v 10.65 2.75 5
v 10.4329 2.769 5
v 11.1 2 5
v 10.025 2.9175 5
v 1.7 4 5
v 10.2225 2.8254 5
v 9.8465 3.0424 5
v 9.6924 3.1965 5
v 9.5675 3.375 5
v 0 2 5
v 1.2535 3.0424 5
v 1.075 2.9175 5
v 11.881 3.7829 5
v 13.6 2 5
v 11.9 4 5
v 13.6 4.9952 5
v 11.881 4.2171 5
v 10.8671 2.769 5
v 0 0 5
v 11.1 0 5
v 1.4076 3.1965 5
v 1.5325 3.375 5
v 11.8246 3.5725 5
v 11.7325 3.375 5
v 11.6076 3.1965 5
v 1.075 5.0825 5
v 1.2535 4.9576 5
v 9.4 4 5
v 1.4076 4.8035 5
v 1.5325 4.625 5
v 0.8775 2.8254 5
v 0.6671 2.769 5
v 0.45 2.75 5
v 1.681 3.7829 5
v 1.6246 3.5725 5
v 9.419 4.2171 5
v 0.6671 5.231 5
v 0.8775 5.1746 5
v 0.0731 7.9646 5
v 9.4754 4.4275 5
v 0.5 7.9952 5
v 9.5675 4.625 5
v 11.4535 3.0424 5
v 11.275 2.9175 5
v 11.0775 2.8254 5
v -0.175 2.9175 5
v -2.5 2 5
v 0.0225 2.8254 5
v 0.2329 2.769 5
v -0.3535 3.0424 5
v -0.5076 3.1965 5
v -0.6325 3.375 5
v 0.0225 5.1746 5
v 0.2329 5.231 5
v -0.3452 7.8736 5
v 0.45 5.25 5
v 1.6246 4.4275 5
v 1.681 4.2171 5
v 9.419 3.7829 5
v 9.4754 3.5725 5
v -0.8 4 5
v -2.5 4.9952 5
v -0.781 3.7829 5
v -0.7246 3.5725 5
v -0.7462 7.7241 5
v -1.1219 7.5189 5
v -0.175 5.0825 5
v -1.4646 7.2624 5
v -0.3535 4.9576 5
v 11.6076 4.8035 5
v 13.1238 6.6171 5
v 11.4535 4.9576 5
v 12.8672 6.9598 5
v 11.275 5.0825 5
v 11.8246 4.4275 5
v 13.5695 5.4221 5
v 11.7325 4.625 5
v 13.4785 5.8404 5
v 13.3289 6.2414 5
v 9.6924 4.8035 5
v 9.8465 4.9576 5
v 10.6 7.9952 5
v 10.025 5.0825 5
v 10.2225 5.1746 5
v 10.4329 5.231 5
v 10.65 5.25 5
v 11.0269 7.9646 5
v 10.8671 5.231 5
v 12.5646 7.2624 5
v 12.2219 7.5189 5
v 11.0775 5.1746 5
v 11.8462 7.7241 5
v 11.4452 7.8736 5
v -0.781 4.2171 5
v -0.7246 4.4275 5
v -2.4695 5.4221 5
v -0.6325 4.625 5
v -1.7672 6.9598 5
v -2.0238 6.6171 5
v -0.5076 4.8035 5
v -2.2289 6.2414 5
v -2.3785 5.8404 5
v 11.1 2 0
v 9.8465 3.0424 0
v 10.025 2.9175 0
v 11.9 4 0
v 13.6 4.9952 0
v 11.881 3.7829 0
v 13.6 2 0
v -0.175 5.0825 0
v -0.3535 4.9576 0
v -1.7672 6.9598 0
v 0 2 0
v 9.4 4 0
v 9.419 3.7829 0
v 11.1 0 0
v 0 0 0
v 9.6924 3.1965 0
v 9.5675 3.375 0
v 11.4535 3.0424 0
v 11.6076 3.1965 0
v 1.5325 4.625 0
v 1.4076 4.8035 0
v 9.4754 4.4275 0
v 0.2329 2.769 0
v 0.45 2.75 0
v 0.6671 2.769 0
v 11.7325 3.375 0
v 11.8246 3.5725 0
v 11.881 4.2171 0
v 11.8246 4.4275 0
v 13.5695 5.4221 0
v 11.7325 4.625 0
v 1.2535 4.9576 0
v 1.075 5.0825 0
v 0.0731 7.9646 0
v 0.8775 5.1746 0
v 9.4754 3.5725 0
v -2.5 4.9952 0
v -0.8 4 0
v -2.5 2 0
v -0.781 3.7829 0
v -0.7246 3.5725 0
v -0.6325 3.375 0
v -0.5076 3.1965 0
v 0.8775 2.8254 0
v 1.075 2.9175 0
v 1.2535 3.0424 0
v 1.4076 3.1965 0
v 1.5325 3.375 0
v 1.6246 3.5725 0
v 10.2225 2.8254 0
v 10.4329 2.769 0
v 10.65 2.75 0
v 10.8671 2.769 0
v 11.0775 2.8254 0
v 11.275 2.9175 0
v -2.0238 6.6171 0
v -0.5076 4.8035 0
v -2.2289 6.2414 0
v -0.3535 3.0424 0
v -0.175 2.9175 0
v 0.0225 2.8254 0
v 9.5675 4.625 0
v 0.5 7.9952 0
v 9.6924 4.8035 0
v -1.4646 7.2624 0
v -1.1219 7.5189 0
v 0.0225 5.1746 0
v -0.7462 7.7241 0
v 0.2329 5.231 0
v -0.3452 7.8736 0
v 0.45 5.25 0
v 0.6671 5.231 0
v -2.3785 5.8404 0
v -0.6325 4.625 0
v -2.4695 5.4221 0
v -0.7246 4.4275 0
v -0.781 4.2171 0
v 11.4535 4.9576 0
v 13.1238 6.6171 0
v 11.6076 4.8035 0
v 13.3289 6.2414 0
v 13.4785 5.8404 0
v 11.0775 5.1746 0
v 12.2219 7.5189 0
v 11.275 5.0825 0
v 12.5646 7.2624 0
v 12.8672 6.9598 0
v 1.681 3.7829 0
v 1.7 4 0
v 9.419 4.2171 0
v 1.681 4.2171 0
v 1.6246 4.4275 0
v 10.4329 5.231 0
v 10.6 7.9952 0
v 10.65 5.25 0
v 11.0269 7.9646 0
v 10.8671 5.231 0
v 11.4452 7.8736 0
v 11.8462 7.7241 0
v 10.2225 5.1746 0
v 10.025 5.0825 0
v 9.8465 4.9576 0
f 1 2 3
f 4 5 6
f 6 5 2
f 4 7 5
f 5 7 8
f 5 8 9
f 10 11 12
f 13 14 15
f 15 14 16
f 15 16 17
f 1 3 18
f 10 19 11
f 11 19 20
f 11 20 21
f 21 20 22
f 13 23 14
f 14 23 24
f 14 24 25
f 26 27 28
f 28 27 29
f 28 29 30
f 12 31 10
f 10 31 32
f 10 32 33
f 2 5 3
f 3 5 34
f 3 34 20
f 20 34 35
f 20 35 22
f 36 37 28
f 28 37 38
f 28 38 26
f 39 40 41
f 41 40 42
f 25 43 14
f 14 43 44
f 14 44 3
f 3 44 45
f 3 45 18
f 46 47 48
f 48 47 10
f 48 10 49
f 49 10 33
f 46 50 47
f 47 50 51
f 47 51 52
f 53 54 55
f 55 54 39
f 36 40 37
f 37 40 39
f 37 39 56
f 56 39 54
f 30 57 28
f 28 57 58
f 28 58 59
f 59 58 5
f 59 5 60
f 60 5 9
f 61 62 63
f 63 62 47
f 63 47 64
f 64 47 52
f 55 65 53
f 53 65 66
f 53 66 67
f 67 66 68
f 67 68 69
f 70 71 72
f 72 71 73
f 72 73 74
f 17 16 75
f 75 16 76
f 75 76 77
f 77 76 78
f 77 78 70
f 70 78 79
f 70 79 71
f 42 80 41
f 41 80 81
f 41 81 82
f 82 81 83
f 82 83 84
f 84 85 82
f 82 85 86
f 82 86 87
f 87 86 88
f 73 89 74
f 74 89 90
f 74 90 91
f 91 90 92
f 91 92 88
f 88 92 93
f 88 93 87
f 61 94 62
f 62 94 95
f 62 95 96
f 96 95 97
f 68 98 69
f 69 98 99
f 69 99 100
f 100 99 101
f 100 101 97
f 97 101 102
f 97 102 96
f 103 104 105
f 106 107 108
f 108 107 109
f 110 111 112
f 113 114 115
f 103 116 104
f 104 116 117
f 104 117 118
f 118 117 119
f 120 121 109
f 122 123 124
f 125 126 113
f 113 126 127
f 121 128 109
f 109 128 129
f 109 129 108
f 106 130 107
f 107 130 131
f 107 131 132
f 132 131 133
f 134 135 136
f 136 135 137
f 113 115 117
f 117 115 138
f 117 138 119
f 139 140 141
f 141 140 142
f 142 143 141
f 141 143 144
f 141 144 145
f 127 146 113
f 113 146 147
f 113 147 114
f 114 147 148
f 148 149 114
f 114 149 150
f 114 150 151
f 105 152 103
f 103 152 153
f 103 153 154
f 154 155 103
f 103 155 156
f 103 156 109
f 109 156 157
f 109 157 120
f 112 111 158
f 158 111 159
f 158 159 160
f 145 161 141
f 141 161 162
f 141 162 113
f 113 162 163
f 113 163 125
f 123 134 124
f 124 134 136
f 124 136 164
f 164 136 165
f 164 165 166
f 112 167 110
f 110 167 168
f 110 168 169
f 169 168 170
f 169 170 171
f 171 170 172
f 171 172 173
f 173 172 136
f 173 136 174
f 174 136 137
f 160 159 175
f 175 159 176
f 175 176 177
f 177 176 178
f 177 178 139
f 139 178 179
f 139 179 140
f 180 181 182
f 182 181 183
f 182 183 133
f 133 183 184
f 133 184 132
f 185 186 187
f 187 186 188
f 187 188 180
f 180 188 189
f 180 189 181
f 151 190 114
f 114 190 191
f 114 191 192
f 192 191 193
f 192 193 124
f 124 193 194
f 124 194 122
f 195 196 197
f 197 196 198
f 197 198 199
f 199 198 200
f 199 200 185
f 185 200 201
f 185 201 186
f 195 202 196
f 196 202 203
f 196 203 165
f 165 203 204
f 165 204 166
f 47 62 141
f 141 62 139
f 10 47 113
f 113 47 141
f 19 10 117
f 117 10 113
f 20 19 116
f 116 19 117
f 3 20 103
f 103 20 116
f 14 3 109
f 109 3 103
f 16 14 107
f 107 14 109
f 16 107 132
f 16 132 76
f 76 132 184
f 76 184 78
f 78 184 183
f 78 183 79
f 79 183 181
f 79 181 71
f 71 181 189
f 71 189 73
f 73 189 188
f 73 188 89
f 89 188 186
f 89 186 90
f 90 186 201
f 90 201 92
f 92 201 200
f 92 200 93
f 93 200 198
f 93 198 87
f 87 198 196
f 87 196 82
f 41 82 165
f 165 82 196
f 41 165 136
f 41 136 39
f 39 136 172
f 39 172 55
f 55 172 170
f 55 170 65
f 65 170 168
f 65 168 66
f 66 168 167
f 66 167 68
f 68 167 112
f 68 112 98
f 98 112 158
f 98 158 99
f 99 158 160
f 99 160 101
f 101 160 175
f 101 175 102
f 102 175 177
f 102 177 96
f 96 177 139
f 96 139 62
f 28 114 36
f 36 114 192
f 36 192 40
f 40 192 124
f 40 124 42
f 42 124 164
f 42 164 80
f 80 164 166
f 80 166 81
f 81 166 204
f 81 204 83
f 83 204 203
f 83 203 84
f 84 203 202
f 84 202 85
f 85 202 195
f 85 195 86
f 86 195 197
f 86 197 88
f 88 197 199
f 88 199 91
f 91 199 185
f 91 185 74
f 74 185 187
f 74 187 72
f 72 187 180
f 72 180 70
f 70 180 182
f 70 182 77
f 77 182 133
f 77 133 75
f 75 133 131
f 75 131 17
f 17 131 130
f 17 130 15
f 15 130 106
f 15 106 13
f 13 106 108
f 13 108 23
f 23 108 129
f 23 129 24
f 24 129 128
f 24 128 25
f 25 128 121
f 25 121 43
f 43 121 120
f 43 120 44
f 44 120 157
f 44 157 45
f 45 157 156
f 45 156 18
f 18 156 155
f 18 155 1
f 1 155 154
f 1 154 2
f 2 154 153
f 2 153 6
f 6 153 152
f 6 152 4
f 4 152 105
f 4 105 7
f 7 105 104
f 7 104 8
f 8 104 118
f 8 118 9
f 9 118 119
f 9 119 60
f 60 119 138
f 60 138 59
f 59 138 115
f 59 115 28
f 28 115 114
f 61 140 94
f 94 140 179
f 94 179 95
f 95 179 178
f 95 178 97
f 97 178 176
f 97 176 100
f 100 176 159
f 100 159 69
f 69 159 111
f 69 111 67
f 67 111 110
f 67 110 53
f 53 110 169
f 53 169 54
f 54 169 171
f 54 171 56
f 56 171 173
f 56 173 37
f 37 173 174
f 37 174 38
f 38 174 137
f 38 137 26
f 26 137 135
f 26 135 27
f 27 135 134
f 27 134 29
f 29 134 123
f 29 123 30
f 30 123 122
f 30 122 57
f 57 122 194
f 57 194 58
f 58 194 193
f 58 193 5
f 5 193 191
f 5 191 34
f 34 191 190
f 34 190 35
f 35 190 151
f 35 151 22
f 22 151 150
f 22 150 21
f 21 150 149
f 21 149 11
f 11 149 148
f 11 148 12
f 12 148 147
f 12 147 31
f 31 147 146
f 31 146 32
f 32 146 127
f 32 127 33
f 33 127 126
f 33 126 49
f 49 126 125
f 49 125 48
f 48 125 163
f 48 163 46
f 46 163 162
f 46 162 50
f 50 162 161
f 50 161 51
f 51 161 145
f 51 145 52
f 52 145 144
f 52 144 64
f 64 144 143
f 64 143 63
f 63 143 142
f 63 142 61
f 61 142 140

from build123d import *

# Parameters (mm, degrees)
MODEL_R             = 1.25
BOSS_EXTRUDE1_DEPTH = 5


with BuildPart() as part:
    # Model → Boss-Extrude1 (new body)
    with BuildSketch(Plane.XY):
        with BuildLine():
            Line((0, 2), (-2.5, 2))
            Line((-2.5, 2), (-2.5, 4.995169548))
            ThreePointArc((-2.5, 4.995169548), (-1.621320344, 7.116489891), (0.5, 7.995169548))
            Line((0.5, 7.995169548), (10.6, 7.995169548))
            ThreePointArc((10.6, 7.995169548), (12.721320344, 7.116489891), (13.6, 4.995169548))
            Line((13.6, 4.995169548), (13.6, 2))
            Line((13.6, 2), (11.1, 2))
            Line((11.1, 2), (11.1, 0))
            Line((11.1, 0), (0, 0))
            Line((0, 0), (0, 2))
        make_face()
        with Locations((0.45, 4)):
            Circle(MODEL_R, mode=Mode.SUBTRACT)
        with Locations((10.65, 4)):
            Circle(MODEL_R, mode=Mode.SUBTRACT)
    extrude(amount=BOSS_EXTRUDE1_DEPTH)


solid = part.part
